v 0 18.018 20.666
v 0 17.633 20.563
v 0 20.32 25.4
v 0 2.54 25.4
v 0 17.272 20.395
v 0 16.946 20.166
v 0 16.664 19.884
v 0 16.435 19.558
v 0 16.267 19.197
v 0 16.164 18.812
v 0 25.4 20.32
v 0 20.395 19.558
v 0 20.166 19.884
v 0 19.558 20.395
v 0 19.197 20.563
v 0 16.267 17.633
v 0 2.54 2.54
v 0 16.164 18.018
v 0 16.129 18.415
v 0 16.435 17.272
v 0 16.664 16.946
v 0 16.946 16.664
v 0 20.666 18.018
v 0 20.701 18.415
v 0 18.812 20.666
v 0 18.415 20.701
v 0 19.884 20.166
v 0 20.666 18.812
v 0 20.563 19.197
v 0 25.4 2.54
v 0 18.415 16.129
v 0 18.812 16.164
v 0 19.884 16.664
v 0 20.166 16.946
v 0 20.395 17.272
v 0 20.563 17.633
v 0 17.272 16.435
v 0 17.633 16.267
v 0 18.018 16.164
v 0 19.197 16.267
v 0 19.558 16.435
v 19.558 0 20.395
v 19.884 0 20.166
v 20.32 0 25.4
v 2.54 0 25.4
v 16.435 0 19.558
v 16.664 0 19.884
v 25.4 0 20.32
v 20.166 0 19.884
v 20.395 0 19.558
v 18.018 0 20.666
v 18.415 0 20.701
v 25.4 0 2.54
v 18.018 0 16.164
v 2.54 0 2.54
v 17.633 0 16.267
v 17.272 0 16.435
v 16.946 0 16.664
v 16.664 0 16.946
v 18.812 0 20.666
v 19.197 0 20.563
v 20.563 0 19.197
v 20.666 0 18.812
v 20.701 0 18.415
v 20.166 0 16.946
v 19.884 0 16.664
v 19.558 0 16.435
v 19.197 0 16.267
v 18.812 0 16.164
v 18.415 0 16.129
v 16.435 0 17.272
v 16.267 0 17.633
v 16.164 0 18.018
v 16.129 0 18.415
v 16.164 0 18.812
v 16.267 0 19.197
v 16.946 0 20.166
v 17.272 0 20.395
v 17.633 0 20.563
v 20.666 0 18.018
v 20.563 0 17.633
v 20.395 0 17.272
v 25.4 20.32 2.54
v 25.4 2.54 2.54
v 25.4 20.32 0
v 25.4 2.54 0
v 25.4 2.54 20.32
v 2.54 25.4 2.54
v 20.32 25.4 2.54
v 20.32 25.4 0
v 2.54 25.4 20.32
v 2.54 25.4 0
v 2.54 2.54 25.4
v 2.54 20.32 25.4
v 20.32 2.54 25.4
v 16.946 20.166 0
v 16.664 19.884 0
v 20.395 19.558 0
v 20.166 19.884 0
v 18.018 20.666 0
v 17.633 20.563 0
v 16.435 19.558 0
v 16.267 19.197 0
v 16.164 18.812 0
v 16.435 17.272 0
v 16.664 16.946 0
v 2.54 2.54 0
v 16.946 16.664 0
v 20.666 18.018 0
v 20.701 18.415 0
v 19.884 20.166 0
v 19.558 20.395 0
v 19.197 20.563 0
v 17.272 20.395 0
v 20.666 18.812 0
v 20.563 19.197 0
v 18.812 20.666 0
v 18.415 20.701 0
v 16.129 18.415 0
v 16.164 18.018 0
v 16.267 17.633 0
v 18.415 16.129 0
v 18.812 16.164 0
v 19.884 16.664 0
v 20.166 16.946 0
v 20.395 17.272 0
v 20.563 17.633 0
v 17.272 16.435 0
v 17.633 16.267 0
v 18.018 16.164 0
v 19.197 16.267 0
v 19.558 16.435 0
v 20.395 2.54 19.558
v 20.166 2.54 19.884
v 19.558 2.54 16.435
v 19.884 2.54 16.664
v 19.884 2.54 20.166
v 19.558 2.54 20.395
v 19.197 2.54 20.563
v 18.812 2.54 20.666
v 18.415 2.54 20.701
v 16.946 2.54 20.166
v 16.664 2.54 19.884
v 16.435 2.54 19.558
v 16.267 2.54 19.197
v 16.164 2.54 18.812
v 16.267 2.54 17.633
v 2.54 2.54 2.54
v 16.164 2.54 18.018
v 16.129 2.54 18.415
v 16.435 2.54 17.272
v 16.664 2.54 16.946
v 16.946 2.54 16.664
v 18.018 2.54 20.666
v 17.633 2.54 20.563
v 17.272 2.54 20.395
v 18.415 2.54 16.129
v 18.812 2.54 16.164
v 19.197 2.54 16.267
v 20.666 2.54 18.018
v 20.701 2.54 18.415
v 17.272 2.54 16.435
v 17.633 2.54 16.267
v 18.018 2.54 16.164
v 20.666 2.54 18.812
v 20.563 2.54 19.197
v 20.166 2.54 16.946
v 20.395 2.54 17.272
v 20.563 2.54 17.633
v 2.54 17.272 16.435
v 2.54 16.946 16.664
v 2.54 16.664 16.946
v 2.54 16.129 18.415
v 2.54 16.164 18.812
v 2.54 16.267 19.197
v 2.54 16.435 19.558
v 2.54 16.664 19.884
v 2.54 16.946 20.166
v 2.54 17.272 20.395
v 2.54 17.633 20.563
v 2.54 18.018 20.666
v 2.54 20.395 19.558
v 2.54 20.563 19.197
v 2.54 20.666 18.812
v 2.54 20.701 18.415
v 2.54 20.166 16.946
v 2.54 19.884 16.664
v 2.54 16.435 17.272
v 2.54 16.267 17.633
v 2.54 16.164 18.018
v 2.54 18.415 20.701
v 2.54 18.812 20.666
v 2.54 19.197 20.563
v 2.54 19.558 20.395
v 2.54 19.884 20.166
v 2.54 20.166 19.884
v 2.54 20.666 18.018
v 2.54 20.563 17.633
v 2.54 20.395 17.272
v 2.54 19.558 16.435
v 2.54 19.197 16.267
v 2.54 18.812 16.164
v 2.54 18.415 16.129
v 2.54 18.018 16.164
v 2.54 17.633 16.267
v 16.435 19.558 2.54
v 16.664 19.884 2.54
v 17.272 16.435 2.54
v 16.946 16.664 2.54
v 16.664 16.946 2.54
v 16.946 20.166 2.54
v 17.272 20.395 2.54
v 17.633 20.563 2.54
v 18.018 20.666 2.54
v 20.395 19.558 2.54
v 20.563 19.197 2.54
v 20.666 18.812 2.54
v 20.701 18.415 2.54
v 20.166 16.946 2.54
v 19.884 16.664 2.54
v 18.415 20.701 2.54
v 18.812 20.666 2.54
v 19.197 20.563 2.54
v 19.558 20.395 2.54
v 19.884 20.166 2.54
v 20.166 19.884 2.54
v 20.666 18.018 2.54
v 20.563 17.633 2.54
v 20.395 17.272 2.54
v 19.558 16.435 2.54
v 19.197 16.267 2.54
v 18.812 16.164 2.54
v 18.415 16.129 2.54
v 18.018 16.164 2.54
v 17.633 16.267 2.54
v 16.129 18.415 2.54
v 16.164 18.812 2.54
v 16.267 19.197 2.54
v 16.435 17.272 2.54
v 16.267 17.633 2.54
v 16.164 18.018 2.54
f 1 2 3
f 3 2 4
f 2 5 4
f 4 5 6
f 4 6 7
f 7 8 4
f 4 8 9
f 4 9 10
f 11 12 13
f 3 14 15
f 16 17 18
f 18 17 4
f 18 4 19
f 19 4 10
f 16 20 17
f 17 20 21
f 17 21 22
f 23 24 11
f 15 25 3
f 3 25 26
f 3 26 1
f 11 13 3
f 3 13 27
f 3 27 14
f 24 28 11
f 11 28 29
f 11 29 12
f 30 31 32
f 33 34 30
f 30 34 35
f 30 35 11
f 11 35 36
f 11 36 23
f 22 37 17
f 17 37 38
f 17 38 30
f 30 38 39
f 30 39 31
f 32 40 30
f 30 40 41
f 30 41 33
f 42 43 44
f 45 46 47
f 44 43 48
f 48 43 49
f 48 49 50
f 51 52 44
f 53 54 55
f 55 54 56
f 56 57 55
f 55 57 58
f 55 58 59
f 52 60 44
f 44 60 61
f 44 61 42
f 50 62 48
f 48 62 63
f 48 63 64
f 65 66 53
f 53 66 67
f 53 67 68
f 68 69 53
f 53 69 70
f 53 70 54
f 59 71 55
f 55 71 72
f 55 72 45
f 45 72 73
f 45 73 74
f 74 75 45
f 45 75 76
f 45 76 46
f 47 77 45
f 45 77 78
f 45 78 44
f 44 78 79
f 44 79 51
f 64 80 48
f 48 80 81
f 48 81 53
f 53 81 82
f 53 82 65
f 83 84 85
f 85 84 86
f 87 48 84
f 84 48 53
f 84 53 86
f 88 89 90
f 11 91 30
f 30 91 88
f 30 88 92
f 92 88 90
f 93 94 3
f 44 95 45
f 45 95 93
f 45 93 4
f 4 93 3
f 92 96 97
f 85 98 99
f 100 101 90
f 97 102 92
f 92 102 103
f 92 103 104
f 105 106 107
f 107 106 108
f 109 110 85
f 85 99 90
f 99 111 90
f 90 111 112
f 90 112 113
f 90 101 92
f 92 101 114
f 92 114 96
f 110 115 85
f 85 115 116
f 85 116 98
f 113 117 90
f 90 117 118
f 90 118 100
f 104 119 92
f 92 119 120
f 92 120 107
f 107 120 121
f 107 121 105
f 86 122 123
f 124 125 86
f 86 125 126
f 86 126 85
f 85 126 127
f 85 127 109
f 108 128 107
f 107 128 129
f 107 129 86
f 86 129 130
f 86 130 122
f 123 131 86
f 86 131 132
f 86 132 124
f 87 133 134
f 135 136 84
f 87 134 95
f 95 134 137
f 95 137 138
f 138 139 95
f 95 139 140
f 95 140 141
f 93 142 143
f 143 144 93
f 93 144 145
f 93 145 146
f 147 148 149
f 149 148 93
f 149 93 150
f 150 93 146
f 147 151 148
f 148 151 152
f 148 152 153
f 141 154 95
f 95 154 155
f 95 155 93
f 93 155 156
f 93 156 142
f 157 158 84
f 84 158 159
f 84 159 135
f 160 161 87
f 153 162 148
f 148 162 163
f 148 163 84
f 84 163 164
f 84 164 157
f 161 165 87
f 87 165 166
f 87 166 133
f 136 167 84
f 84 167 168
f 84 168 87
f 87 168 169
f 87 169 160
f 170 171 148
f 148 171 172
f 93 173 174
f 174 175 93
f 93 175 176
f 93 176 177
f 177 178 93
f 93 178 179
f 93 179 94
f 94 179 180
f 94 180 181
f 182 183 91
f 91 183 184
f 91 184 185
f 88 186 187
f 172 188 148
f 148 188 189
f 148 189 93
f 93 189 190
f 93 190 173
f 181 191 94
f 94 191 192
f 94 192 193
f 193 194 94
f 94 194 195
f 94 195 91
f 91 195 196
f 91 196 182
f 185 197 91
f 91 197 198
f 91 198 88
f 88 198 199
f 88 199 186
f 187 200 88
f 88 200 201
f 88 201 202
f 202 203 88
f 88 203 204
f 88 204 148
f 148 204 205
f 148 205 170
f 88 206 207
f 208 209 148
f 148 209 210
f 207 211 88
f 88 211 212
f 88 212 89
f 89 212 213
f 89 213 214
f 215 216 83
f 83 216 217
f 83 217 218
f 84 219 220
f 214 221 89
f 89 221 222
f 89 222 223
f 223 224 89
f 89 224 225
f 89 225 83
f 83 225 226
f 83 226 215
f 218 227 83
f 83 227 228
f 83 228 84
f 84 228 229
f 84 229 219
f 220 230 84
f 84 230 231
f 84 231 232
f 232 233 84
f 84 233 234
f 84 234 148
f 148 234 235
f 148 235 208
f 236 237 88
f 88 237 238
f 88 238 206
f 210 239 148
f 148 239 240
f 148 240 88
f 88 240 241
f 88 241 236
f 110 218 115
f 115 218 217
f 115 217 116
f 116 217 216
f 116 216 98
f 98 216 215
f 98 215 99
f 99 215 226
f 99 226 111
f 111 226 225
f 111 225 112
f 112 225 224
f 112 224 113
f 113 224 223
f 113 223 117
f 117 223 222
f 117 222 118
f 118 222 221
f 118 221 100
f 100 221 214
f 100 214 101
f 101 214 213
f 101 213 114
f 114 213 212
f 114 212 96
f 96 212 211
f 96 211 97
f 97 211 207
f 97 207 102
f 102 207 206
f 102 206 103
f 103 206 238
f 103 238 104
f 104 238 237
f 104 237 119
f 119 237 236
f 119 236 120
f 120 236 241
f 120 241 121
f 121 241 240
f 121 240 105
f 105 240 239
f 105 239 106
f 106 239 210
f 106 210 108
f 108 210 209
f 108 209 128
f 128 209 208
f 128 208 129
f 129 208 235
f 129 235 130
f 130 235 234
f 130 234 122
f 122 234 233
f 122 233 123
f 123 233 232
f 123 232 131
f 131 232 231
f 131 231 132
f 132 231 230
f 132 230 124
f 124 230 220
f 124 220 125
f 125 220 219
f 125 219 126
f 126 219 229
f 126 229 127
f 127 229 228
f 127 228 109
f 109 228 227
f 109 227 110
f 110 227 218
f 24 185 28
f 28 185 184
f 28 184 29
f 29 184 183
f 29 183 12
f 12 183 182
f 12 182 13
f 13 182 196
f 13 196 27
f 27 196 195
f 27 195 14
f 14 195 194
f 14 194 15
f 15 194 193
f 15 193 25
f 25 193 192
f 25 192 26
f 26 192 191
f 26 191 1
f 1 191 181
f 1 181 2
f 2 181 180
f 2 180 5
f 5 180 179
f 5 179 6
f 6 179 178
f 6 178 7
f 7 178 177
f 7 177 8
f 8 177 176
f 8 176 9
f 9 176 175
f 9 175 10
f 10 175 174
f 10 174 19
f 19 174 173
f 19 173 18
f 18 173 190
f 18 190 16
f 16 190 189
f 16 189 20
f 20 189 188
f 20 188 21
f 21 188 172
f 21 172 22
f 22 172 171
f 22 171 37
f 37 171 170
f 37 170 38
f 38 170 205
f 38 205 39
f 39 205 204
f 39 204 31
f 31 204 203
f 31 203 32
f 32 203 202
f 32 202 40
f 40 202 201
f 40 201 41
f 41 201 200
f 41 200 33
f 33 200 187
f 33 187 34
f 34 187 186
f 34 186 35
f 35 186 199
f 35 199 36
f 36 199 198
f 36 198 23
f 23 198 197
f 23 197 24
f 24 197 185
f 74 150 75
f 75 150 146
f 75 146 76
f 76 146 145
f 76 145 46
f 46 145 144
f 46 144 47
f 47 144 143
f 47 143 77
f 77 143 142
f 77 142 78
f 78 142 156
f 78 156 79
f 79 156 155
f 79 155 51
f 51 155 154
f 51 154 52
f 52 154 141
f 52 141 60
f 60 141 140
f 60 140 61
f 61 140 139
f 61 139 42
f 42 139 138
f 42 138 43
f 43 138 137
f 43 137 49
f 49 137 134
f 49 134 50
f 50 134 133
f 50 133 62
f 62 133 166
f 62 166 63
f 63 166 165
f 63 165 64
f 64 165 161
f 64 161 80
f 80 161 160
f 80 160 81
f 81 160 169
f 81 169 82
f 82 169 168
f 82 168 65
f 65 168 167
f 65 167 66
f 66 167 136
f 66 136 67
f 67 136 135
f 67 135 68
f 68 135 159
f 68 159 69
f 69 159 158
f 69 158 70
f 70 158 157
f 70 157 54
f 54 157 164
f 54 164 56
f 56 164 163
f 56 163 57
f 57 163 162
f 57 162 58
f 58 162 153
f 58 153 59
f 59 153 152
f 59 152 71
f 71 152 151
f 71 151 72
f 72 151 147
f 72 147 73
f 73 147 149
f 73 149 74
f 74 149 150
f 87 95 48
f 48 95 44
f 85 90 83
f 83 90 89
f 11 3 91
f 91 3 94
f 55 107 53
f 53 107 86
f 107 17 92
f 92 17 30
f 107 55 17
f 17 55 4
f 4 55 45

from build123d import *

# Parameters (mm, degrees)
SKETCH2_W           = 25.4
SKETCH2_H           = 25.4
BOSS_EXTRUDE2_DEPTH = 25.4
SKETCH3_W           = 22.86
SKETCH3_H           = 22.86
CUT_EXTRUDE1_DEPTH  = 22.86
SKETCH4_R           = 2.286
CUT_EXTRUDE3_DEPTH  = 2.54
SKETCH5_R           = 2.286
CUT_EXTRUDE4_DEPTH  = 2.54
SKETCH6_R           = 2.286
CUT_EXTRUDE5_DEPTH  = 2.54
CHAMFER1_SIZE       = 5.08
CHAMFER2_SIZE       = 2.54


with BuildPart() as part:
    # Sketch2 → Boss-Extrude2 (new body)
    with BuildSketch(Plane.XY):
        with Locations((12.7, 12.7)):
            Rectangle(SKETCH2_W, SKETCH2_H)
    extrude(amount=BOSS_EXTRUDE2_DEPTH)

    # Sketch3 → Cut-Extrude1 (cut)
    with BuildSketch(Plane.XY.offset(25.4)):
        with Locations((13.97, 13.97)):
            Rectangle(SKETCH3_W, SKETCH3_H)
    extrude(amount=-CUT_EXTRUDE1_DEPTH, mode=Mode.SUBTRACT)

    # Sketch4 → Cut-Extrude3 (cut)
    with BuildSketch(Plane.XY.offset(2.54)):
        with Locations((18.415, 18.415)):
            Circle(SKETCH4_R)
    extrude(amount=-CUT_EXTRUDE3_DEPTH, mode=Mode.SUBTRACT)

    # Sketch5 → Cut-Extrude4 (cut)
    with BuildSketch(Plane(origin=(2.54, 0, 0), x_dir=(0, 0, -1), z_dir=(1, 0, 0))):
        with Locations((-18.415, 18.415)):
            Circle(SKETCH5_R)
    extrude(amount=-CUT_EXTRUDE4_DEPTH, mode=Mode.SUBTRACT)

    # Sketch6 → Cut-Extrude5 (cut)
    with BuildSketch(Plane(origin=(0, 2.54, 0), x_dir=(1, 0, 0), z_dir=(0, 1, 0))):
        with Locations((18.415, -18.415)):
            Circle(SKETCH6_R)
    extrude(amount=-CUT_EXTRUDE5_DEPTH, mode=Mode.SUBTRACT)

    # Chamfer1
    chamfer1_edges = [part.edges().sort_by_distance(p)[0] for p in [
        (25.4, 1.27, 25.4),
        (1.27, 25.4, 25.4),
        (25.4, 25.4, 1.27),
    ]]
    chamfer(chamfer1_edges, length=CHAMFER1_SIZE)

    # Chamfer2
    chamfer2_edges = [part.edges().sort_by_distance(p)[0] for p in [
        (12.7, 0, 0),
        (0, 12.7, 0),
        (0, 0, 12.7),
    ]]
    chamfer(chamfer2_edges, length=CHAMFER2_SIZE)


solid = part.part
